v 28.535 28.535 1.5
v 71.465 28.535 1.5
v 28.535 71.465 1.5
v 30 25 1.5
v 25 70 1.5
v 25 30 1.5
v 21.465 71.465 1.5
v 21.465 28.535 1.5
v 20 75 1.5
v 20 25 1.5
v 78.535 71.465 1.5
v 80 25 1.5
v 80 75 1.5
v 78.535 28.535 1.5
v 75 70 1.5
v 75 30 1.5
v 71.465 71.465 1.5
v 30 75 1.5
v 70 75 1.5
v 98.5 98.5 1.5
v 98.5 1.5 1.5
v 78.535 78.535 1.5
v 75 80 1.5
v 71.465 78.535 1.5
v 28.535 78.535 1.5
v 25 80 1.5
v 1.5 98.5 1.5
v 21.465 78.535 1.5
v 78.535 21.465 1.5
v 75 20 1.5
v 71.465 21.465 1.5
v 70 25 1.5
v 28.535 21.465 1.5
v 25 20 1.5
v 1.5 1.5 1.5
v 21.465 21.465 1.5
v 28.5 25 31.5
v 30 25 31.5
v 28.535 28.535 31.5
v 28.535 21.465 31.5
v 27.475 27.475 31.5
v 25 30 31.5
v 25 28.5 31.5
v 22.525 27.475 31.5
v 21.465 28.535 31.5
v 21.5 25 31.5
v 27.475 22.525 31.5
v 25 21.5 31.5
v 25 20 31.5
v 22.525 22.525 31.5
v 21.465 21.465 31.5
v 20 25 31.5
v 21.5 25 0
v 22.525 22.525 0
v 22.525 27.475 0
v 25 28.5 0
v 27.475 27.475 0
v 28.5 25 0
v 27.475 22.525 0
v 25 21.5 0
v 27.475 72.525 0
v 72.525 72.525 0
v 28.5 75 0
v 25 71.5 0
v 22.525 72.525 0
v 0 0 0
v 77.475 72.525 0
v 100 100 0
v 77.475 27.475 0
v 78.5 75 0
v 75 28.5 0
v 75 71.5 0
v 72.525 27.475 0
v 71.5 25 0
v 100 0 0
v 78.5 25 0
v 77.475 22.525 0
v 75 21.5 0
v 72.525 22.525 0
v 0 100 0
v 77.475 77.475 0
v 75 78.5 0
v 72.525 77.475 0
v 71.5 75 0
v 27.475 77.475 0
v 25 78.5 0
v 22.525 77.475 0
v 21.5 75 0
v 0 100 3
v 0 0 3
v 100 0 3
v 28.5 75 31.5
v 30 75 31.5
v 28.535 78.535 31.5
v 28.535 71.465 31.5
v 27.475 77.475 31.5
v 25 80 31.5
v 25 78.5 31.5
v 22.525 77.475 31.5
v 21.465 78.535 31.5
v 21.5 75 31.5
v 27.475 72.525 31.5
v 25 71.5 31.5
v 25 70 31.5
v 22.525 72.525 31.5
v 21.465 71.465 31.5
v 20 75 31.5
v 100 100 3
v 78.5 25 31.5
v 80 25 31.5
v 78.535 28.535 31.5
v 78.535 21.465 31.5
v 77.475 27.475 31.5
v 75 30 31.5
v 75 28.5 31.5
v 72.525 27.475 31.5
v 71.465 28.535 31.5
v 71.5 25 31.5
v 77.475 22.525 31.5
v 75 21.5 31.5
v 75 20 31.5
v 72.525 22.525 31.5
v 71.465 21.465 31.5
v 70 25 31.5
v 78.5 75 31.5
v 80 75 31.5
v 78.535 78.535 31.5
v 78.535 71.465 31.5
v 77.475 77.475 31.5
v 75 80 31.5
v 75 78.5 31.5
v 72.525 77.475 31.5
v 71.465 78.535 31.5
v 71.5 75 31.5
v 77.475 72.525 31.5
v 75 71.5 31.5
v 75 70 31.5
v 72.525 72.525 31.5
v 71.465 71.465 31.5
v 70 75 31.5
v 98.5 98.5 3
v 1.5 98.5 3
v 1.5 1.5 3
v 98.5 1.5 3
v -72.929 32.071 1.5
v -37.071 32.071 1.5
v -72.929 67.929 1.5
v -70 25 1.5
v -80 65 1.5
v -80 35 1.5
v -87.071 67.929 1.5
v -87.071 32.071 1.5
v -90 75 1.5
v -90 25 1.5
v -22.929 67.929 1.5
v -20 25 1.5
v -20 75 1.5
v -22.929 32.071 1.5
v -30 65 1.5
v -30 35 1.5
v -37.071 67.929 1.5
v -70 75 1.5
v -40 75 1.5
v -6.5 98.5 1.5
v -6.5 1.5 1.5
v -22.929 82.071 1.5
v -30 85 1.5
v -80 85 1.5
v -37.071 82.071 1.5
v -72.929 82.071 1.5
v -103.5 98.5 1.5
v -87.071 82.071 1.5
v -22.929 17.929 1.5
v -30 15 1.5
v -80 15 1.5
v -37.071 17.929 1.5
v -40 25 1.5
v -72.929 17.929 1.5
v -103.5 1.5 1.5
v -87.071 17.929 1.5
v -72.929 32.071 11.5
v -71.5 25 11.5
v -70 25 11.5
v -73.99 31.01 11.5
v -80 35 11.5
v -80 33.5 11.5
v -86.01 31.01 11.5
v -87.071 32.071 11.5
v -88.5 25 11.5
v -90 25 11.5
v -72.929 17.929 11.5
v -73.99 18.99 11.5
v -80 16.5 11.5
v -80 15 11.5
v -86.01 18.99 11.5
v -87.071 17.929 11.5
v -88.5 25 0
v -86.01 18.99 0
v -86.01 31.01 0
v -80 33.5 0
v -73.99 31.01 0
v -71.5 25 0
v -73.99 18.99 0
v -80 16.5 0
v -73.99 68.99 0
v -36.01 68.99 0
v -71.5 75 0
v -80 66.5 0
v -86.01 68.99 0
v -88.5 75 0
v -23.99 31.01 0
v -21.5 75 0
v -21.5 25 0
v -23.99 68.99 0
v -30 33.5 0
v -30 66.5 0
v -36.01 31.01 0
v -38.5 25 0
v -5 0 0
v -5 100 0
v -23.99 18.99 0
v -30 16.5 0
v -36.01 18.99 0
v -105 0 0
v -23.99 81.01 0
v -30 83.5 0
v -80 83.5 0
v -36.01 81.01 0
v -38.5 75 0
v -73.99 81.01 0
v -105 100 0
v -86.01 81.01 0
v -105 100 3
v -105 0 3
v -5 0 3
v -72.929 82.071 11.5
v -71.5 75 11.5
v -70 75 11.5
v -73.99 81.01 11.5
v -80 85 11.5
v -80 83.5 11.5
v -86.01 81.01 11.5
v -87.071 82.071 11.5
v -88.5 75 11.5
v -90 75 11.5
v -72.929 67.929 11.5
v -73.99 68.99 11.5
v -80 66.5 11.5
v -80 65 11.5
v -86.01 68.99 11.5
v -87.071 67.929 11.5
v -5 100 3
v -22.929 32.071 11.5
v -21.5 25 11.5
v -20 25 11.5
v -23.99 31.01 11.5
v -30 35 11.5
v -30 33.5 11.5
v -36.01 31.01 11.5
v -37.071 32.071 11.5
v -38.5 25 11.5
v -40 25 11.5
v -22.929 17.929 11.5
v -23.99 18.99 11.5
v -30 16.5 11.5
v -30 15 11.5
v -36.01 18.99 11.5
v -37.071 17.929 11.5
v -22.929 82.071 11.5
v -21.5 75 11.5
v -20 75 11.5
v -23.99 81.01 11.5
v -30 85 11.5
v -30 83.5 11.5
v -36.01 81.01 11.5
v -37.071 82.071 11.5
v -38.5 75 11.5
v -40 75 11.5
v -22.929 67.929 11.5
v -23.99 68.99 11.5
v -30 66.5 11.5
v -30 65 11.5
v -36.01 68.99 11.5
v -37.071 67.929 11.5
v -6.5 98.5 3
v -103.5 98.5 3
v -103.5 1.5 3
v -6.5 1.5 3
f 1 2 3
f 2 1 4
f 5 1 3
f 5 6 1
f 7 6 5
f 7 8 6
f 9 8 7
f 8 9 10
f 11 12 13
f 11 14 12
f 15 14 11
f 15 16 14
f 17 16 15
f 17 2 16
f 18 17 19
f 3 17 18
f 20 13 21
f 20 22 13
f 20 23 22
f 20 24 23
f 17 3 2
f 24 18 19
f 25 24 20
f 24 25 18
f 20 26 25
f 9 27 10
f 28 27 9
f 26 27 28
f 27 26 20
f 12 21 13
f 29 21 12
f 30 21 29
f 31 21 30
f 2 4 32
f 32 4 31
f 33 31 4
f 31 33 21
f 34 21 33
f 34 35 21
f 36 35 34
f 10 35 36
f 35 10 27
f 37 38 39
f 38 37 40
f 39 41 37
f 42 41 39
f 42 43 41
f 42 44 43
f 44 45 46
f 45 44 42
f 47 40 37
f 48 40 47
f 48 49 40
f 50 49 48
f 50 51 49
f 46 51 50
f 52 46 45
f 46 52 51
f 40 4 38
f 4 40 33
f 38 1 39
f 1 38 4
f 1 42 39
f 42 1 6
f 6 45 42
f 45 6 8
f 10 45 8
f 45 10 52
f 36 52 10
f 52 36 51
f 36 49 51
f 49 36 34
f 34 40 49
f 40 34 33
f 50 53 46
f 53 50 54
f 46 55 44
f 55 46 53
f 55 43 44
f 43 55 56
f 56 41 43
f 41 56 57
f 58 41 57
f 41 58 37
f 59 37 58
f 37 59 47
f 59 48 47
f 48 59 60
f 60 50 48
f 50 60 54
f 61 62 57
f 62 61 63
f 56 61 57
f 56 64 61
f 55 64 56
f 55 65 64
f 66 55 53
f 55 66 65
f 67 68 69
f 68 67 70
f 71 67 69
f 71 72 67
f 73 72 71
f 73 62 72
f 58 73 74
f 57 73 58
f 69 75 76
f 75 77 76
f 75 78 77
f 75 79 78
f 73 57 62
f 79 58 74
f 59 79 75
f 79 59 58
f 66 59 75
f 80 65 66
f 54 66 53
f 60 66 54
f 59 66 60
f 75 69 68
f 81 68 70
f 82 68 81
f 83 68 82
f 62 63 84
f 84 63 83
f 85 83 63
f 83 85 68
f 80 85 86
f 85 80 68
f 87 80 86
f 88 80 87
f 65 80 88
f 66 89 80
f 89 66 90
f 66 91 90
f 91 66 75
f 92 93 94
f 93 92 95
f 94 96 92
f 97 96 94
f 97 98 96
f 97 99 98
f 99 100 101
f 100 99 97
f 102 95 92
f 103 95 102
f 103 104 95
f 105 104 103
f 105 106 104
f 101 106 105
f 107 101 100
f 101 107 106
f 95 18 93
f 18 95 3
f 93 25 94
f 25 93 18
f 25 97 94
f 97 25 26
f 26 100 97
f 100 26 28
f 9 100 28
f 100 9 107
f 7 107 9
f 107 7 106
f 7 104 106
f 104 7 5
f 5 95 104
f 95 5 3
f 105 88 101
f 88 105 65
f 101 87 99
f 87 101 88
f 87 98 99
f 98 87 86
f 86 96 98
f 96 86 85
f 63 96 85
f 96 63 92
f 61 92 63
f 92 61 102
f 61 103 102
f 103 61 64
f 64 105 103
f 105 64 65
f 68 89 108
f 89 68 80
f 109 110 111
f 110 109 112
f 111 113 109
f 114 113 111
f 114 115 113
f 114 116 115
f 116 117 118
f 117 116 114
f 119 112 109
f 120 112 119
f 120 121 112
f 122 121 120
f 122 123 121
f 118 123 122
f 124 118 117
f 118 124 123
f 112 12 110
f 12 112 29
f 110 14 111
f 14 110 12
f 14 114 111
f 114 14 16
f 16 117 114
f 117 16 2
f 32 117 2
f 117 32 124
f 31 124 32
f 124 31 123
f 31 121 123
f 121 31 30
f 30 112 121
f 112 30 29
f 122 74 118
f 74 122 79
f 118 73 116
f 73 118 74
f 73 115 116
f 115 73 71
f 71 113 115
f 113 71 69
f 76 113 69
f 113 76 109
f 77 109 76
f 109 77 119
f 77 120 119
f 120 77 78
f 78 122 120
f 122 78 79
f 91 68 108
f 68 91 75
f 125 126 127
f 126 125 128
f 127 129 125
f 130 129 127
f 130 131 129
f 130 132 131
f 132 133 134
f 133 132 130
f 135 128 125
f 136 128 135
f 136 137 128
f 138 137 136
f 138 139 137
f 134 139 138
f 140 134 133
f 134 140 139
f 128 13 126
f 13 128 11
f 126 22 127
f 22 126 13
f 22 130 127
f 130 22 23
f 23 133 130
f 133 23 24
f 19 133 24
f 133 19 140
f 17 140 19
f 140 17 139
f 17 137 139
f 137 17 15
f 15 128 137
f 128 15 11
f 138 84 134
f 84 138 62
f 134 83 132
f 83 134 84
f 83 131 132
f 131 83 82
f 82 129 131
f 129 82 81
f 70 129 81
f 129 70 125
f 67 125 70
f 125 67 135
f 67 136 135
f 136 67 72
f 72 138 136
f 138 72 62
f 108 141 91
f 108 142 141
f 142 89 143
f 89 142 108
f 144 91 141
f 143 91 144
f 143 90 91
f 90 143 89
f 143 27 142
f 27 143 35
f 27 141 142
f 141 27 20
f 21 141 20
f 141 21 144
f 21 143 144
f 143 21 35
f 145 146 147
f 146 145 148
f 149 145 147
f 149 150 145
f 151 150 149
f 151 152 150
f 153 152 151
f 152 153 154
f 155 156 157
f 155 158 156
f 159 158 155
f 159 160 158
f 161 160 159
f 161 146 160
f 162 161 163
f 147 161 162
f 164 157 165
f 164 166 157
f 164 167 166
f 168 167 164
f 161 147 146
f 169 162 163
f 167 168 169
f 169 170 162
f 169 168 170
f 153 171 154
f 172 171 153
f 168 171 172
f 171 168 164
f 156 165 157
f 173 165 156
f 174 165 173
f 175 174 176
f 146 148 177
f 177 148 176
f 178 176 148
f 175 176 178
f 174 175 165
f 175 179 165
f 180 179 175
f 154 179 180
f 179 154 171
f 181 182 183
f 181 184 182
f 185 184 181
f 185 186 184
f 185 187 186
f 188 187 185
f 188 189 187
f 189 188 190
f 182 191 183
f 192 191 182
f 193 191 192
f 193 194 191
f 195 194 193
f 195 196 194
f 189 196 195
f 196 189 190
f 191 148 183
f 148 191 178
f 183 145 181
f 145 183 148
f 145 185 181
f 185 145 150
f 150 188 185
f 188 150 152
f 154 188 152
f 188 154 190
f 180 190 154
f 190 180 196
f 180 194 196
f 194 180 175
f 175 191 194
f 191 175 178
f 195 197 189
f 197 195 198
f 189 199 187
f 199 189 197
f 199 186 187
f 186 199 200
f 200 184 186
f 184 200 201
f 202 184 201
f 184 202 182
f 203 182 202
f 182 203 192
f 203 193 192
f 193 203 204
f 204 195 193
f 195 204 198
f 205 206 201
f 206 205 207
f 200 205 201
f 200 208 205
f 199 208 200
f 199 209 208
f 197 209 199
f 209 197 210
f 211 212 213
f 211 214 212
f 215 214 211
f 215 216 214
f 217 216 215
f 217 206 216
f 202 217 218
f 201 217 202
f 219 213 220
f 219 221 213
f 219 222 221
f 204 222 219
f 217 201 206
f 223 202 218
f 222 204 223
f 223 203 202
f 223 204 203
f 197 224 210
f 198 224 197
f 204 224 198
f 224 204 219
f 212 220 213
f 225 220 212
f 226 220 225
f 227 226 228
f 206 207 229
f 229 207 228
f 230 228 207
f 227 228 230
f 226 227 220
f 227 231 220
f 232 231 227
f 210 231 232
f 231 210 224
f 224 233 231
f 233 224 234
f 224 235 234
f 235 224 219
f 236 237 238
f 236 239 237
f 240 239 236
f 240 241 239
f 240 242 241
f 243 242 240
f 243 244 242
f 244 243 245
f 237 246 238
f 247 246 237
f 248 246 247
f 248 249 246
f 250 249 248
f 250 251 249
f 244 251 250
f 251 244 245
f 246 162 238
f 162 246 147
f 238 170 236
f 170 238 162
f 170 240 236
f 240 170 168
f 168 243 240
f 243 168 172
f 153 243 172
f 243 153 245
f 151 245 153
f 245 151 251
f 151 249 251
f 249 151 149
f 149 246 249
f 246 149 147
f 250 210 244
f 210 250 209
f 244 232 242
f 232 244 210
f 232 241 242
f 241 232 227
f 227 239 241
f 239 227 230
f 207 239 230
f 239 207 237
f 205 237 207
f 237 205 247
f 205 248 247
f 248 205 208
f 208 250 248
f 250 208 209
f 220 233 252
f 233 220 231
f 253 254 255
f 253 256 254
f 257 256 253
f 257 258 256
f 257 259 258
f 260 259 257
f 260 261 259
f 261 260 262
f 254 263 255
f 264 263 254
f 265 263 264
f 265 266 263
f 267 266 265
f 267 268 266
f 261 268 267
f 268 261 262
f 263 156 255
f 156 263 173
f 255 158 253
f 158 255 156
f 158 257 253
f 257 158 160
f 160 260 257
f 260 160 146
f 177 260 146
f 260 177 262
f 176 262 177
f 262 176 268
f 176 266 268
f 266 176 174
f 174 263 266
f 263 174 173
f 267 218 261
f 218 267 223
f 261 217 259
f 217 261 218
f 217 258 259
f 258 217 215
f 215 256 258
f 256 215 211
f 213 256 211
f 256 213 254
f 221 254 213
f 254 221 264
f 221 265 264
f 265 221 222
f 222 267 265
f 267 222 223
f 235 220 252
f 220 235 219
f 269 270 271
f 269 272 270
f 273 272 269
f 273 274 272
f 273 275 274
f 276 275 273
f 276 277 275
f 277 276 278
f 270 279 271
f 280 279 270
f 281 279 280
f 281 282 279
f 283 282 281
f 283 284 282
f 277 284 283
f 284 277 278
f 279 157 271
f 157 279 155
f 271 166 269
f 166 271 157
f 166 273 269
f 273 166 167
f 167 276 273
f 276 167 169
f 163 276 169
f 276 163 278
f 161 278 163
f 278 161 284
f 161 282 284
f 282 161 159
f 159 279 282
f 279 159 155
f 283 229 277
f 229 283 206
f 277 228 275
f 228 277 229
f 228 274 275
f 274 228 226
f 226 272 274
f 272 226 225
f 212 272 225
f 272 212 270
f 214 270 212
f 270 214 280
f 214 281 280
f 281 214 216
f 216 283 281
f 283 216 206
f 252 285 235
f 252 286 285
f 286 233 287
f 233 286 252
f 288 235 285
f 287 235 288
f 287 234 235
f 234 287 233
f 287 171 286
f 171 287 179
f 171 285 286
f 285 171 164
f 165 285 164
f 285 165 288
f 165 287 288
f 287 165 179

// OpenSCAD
module honeycomb(x, y, r) {
     gap = 2;
     hgap = gap / 2;

     x_step = (2 * r) + gap;
     x_copies = floor(x / x_step);

     y_step = 2 * (r + gap);
     y_copies = floor(y / y_step);

     intersection() {
	  square([x, y]);

	  translate([0, 0]) {
	       copy_translate(y=y_step, copies=y_copies) {
		    copy_translate(x=x_step, copies=x_copies) {
			 copy_translate(x=r + hgap, y=r + gap, copies=1) {
			      rotate([0, 0, 90]) {
				   circle(r, $fn=6);
			      };
			 };
		    };
	       };
	  };
     };
}


module standoff(tall, base, r=5, base_thick=2, $fn=8) {
     translate([0, 0, base_thick]) {
	  linear_extrude(tall) {
	       difference() {
		    circle(r);
		    circle(r-base_thick);
	       };
	  };
     };

     honey_base = base - (base_thick * 2);

     linear_extrude(base_thick) {
	  difference() {
	       square([base, base], true);
	       circle(r-base_thick);

	       /* // honeycomb is cute and all, but takes like 5 times
		  // as long to print.

		  difference() {
		  translate([-honey_base/2, -honey_base/2]) {
		  honeycomb(honey_base, honey_base, 2.5);
		  };
		  circle(r * 2);
	       };
	       */
	  };
     };
}


module copy_translate(x=0, y=0, z=0, copies=1) {
     for(i = [0:copies]) {
          translate([x * i, y * i, z * i]) {
               children();
          };
     };
}


module standoff_grid(rows, cols, tall, base, r, base_thick=2) {
     copy_translate(x=base, copies=cols-1) {
	  copy_translate(y=base, copies=rows-1) {
	       translate([base / 2, base / 2]) {
		    standoff(tall, base, r, base_thick);
	       };
	  };
     };
     linear_extrude(base_thick * 2) {
	  let(bx = base * cols, by = base * rows, bh = base_thick * 2) {
	       difference() {
		    square([bx, by]);
		    translate([base_thick, base_thick]) {
			 square([bx - bh, by - bh]);
		    };
	       };
	  };
     };
}


standoff_grid(2, 2, 30, 50, r=5, base_thick=1.5);

translate([-105, 0]) {
     standoff_grid(2, 2, 10, 50, r=10, base_thick=1.5);
};

//standoff(30, 50);
